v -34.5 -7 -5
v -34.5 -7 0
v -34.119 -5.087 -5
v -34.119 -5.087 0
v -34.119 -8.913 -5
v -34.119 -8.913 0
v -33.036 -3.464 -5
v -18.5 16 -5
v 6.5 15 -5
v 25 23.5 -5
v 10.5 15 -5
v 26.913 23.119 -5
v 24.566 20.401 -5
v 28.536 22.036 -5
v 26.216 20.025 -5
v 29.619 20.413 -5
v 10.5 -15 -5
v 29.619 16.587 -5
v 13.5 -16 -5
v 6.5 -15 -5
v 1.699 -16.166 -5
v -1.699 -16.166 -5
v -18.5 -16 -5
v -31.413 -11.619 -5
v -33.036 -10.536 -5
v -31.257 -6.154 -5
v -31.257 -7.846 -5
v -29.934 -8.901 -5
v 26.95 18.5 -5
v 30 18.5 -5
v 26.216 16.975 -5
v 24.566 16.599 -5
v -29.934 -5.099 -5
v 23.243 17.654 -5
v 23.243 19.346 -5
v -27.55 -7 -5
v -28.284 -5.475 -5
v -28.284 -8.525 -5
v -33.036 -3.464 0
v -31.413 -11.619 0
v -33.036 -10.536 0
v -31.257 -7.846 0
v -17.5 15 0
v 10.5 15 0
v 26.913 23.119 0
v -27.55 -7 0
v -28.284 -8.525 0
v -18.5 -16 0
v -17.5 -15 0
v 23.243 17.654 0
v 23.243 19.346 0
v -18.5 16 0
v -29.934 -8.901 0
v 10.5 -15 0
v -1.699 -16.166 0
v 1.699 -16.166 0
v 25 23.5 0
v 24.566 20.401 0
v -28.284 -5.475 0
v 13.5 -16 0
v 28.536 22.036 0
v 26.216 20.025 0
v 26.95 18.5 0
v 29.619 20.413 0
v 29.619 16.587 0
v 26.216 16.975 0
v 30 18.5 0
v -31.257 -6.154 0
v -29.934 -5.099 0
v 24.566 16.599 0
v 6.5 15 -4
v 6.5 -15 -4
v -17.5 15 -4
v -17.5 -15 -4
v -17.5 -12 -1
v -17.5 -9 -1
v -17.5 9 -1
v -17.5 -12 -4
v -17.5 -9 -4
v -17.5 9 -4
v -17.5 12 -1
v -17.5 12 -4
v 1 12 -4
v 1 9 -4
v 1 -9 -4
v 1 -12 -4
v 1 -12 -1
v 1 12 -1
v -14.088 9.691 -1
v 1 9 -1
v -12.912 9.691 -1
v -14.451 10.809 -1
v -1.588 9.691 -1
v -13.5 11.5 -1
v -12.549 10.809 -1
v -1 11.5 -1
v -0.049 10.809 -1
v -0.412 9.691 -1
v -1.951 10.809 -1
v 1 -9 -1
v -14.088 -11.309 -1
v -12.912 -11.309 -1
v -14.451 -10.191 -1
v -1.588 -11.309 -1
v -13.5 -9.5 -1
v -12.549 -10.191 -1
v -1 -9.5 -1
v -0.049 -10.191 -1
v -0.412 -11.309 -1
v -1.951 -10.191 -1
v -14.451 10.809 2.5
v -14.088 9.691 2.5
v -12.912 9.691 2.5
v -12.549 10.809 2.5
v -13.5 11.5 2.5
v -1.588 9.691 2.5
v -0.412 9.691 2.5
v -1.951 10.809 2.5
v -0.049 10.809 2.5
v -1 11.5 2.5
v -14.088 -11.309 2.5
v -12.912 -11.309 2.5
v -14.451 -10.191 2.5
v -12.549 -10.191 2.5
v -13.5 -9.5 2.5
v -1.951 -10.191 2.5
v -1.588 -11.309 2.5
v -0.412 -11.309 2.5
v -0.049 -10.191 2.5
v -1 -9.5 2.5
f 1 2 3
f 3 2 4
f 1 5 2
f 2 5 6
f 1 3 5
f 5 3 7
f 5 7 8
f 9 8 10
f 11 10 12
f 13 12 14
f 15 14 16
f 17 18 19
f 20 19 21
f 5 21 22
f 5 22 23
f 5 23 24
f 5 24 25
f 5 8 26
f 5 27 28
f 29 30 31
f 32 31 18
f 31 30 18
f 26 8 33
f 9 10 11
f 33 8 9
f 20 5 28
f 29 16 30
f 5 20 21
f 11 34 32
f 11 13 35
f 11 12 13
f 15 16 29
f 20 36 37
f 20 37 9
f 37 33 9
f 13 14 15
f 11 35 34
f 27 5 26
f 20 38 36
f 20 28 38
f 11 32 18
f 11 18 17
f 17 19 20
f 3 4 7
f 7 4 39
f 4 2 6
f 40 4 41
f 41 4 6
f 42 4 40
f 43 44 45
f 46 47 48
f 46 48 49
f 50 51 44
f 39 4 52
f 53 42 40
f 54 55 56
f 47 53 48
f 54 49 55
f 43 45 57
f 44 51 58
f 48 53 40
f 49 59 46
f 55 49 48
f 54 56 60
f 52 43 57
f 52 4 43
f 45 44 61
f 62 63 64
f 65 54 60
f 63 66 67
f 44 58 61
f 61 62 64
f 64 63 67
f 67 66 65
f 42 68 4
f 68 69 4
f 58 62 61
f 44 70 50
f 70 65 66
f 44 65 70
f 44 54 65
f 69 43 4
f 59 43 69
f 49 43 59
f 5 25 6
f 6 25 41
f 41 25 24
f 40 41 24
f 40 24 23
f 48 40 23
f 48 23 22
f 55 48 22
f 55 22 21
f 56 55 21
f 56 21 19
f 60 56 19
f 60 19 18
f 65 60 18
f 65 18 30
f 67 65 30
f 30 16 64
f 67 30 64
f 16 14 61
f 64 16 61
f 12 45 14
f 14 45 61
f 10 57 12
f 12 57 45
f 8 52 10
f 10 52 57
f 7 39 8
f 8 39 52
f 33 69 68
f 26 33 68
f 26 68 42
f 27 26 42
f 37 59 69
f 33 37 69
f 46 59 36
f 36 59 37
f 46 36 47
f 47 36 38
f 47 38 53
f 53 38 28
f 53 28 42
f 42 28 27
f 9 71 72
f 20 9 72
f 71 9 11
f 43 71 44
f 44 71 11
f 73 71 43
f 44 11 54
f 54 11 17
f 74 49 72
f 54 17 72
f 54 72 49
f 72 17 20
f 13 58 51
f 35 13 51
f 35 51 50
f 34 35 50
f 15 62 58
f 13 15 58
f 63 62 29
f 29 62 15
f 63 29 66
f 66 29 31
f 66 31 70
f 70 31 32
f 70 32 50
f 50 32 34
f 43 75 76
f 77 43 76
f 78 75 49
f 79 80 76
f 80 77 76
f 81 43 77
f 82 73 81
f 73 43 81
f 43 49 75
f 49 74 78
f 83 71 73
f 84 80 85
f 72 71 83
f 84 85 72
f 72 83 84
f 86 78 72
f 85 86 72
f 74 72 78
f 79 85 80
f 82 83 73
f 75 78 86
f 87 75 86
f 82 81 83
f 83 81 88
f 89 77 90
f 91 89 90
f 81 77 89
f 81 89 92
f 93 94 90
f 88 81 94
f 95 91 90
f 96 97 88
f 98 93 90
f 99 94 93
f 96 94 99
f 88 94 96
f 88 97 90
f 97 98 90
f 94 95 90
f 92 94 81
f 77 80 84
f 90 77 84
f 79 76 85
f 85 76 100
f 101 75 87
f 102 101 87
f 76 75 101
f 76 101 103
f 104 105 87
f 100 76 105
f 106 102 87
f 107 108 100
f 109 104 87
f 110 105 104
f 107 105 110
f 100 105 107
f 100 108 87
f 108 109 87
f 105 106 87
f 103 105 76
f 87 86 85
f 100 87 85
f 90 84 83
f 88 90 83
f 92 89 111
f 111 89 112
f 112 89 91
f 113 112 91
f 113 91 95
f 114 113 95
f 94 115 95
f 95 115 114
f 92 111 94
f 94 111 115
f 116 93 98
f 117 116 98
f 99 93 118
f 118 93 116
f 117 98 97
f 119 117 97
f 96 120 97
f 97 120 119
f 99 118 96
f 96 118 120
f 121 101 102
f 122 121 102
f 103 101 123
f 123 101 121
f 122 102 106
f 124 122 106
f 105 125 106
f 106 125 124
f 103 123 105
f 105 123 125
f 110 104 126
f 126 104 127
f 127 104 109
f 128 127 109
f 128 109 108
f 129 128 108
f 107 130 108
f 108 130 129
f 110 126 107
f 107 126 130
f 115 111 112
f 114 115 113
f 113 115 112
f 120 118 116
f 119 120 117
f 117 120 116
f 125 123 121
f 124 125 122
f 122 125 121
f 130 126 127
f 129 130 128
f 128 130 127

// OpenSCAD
// file: dimensions.scad
// The camera board by my measurement is 25.10 mm wide, 24.22 mm tope-bottom

// Camera module board dimensions
// These are for the version 1.3 board.
// This is a combination of my caliper measurements and 
// <http://www.raspberrypi-spy.co.uk/2013/05/pi-camera-module-mechanical-dimensions/>

hole_expansion = 0.5;   // Extra radius on holes
// CM -- Camera Module
// Origin is lower left corner looking into lens with cable out the bottom
// We later rotate([0,0,90]) to put the cable out to +x in the Pi board coordinates (USB-side direction)
CM_size = [25.1, 24.22,0];   // My caliper measurement
CM_hole_dia = 2.0;  // Diameter of mounting hole
CM_hole_space = [21.0, 12.5];
CM_hole_zero = [(CM_size[0] - CM_hole_space[0])/2, 9.5];
CM_optical_center = [CM_size[0]/2, 8.5];    // Lens is not well-registered
CM_board_thick_z = 1.0; // Measured as 0.87 exclusive of components
CM_board_and_connector_thick_z = 3.52; // From top of board to back of connector by calipers
CM_LED_location = [20,19];  // Where the LED is
CM_LED_hollow_size = [4,4,3];   // size of hollow to surround LED
CM_LED_dome_size = [5,5,4];     // Size of outside of dome around LED
CM_camera_square = [8,8,4] + [2,2,0];   // Including 2 mm of slop in X,Y   
CM_top_connector = [[10,20,3],[-5,-5,-0.2]];    // Keepout box

CMOS_diagonal = 1.4e-3 * sqrt(pow(2592,2) + pow(1944,2));

// Raspberry Pi rev 2 mounting holes
// http://www.raspberrypi.org/wp-content/uploads/2012/12/Raspberry-Pi-Mounting-Hole-Template.png
// Looking down on the component/connector side of the board, with the USB port to the right
// and the origin at the lower left, the board size is 
PI_board_size = [85,56];
PI_mounthole_locs = [[25.5,18],[80,43.5]];
PI_mounthole_dia = 2.9;

PI_optical_center = [55, 25];   // Where you want to place the central axis of the optical system
                                // Note that there is interference between the [25.5, 18] mounting hole
                                // and the camera board if you try to center it on the board center

drawtube_OD = 25.4 * 0.965; // Popular sizes for telescopes are 0.965", 1.25", 2.0"
drawtube_length = 20.0;     // Length of drawtube beyond flange (part that extends into nosepiece)
drawtube_wall = 1.5;
flange_parfocal = 4.5;      // How far behind the end of the eyepiece tube to put the board plane
flange_stepsize = 4.0;      // How much the tube steps out to the side to seat on flange

mounthole_out_radius = 5;   // How far from the center of mount holes to the edge of the plate
mounthole_washer_radius = 3.0;  // How much clearance to leave around the top of the mounting hole for washer and screw head

CM_hole_extra_length = 4;   // How long to extend the CM mounting holes into the drawtube assembly

 // Baseplate that goes against the front of the CM circuit board
plate_thickness = 2.5;

optics_f_ratio = 5.0;       // How much clearance to leave the baffles so they don't cut off the incoming light cone

// Each baffle is a conical shell that fills the drawtube, pointing 
// away from the detector, but cut away so the detector can see everything 
// within the f_ratio light path
baffle_thickness = 0.5; // Vertical thickness
baffle_spacing = 5;     // Vertical spacing (not perpendicular)
baffle_cone_height = drawtube_OD * tan(60)/2;   //slope of cone is 60 degrees 

// Plate in which the module is embedded
// the bottom of the plate is at z=-backplate_thickness and the top at z=0
// The coordinate system is the same as for the drawtube
backplate_thickness = 5;

backplate_cavity = [[28,30,4.1],[-17.5, -15, -4]];
// Where you feed out the cable
backplate_slot = backplate_cavity + [[-24,0,0],[24,0,-3]];

first_rail = [[19,3,backplate_thickness-CM_board_thick_z],[-18,-12,-backplate_thickness]];
// file: shapes.scad
// Centered on z axis with cyl symmetry, going from  Z=[0,length]
module drawtube_and_flange()
{
    difference() {
        union() {
            cylinder(h=drawtube_length+flange_parfocal,r=drawtube_OD/2,center=0);
            cylinder(h=flange_parfocal,r=drawtube_OD/2 + flange_stepsize,center=0);
        }
        cylinder(h=2.1*(drawtube_length+flange_parfocal),r=drawtube_OD/2-drawtube_wall,center=1);
    }
}


module baffles()
{
    intersection()
    {
        for ( z = [flange_parfocal:baffle_spacing:drawtube_length+flange_parfocal ])
        {
            difference() 
            {
                translate([0,0,z+baffle_thickness]) cylinder(h=baffle_cone_height,r1=drawtube_OD/2,r2=0.1);
                translate([0,0,z                 ]) cylinder(h=baffle_cone_height,r1=drawtube_OD/2,r2=0.1);
            }
        }
        cylinder(h=drawtube_length+flange_parfocal,r=drawtube_OD/2,center=0);
    }
}
 

// Keepout space for camera module
// Oriented centered on the lens, facing +Z, cable out -X, top surface at Z=0
module CM_keepout()
{
    // Light cone keepout
    nose_ID = drawtube_OD - 2*drawtube_wall;
    lightcone_height = (nose_ID - (2 + CMOS_diagonal) ) * optics_f_ratio;
    rotate([0,0,90])
    {
        union()
        {
            // Cube of camera
            translate([-CM_camera_square[0]/2,-CM_camera_square[1]/2,0])
                cube(CM_camera_square);
            translate(CM_top_connector[1]) cube(CM_top_connector[0]);

            // camera and connector on top
            translate(CM_optical_center * -1)
                translate(CM_LED_location)
                    resize(CM_LED_hollow_size) sphere();
            
            cylinder(h = lightcone_height, r1 = CMOS_diagonal, r2= nose_ID/2);
        }
    }
}
 
module CM_mountholes()
{   
    rotate([0,0,90]) translate(CM_optical_center * -1)
    {
        for ( i = [0:1])
        {
            for (j=[0:1])
            {
                translate([CM_hole_zero[0] + i*CM_hole_space[0], CM_hole_zero[1] + j*CM_hole_space[1], 0])
                    cylinder(h=2*CM_hole_extra_length, r=CM_hole_dia/2 + hole_expansion, center=true);
            }
        }
    }
}

module CM_mountpins()
{   
    rotate([0,0,90]) translate(CM_optical_center * -1)
    {
        for ( i = [0:1])
        {
            for (j=[0:1])
            {
                translate([CM_hole_zero[0] + i*CM_hole_space[0], CM_hole_zero[1] + j*CM_hole_space[1], -backplate_thickness])
                    cylinder(h=backplate_thickness+plate_thickness, r=CM_hole_dia/2, center=false);
            }
        }
    }
}

// Slab for either the front or back plate, with the given thickness
// z in range [0,thickness], optical axis centered at [0,0,z]
// No holes included
module plate_slab(thickness)
{
    hull() 
    {
        translate(PI_optical_center * -1) 
        {
            for (i = [0:1])
            {
                translate(PI_mounthole_locs[i]) 
                    cylinder(h=thickness,r=mounthole_out_radius);
            }
        }
        cylinder(h=thickness,r=drawtube_OD/2 + flange_stepsize);
        translate(backplate_cavity[1] + -1 * [1,1]) // Move center to center of board
            cube([backplate_cavity[0][1] + 2,backplate_cavity[0][1] + 2,thickness]);  // Stretch 1 mm beyond CM board cavity on all 4 edges
    }
}


module PI_mount_screw_keepout()
{
    // mount screw and Washer keepouts
    translate(PI_optical_center * -1) 
    {
        for (i = [0:1])
        {
            translate(PI_mounthole_locs[i])
            {
                union()
                {
                    cylinder(h=2*(plate_thickness + backplate_thickness),r=PI_mounthole_dia/2 + hole_expansion,center=true);
                    translate([0,0,plate_thickness - 0.1])
                        cylinder(h=2*plate_thickness+flange_parfocal,r=mounthole_washer_radius);
                }
                    
                    
            }            
        }
    }
}

module frontplate()
{
    union()
    {
        
        difference() {
            plate_slab(plate_thickness);
            for (i = [0:1])
            {
                translate(PI_mounthole_locs[i] - PI_optical_center) 
                    cylinder(h=3*plate_thickness,r=PI_mounthole_dia/2 + hole_expansion,center=true);
            }
        }
        // LED dome positive space
        difference()
        {
            rotate([0,0,90]) 
                translate(CM_optical_center * -1 + CM_LED_location)
                    resize(CM_LED_dome_size) sphere();
            translate([-50,-50,-100]) cube([100,100,100]);
        }
    }
}

module backplate()
{
    difference()
    {
        translate([0,0,-backplate_thickness]) plate_slab(backplate_thickness);
        PI_mount_screw_keepout();
        translate(backplate_cavity[1]) cube(backplate_cavity[0]);
        translate(backplate_slot[1]) cube(backplate_slot[0]);
    }
    CM_mountpins();
    for (i = [0:1])
    {
        translate([0,i*CM_hole_space[0],0])
            translate(first_rail[1])
                cube(first_rail[0]);
    }
}

module drawtube_assembly()
{
    difference() {
        union() {
            drawtube_and_flange();
            frontplate();
            // baffles();
        }
        PI_mount_screw_keepout();
        CM_mountholes();
        CM_keepout();
    }
}


include <dimensions.scad>
// main file
// Camera module telescope interface backplate.

include <shapes.scad>

render(convexity=5) backplate();
